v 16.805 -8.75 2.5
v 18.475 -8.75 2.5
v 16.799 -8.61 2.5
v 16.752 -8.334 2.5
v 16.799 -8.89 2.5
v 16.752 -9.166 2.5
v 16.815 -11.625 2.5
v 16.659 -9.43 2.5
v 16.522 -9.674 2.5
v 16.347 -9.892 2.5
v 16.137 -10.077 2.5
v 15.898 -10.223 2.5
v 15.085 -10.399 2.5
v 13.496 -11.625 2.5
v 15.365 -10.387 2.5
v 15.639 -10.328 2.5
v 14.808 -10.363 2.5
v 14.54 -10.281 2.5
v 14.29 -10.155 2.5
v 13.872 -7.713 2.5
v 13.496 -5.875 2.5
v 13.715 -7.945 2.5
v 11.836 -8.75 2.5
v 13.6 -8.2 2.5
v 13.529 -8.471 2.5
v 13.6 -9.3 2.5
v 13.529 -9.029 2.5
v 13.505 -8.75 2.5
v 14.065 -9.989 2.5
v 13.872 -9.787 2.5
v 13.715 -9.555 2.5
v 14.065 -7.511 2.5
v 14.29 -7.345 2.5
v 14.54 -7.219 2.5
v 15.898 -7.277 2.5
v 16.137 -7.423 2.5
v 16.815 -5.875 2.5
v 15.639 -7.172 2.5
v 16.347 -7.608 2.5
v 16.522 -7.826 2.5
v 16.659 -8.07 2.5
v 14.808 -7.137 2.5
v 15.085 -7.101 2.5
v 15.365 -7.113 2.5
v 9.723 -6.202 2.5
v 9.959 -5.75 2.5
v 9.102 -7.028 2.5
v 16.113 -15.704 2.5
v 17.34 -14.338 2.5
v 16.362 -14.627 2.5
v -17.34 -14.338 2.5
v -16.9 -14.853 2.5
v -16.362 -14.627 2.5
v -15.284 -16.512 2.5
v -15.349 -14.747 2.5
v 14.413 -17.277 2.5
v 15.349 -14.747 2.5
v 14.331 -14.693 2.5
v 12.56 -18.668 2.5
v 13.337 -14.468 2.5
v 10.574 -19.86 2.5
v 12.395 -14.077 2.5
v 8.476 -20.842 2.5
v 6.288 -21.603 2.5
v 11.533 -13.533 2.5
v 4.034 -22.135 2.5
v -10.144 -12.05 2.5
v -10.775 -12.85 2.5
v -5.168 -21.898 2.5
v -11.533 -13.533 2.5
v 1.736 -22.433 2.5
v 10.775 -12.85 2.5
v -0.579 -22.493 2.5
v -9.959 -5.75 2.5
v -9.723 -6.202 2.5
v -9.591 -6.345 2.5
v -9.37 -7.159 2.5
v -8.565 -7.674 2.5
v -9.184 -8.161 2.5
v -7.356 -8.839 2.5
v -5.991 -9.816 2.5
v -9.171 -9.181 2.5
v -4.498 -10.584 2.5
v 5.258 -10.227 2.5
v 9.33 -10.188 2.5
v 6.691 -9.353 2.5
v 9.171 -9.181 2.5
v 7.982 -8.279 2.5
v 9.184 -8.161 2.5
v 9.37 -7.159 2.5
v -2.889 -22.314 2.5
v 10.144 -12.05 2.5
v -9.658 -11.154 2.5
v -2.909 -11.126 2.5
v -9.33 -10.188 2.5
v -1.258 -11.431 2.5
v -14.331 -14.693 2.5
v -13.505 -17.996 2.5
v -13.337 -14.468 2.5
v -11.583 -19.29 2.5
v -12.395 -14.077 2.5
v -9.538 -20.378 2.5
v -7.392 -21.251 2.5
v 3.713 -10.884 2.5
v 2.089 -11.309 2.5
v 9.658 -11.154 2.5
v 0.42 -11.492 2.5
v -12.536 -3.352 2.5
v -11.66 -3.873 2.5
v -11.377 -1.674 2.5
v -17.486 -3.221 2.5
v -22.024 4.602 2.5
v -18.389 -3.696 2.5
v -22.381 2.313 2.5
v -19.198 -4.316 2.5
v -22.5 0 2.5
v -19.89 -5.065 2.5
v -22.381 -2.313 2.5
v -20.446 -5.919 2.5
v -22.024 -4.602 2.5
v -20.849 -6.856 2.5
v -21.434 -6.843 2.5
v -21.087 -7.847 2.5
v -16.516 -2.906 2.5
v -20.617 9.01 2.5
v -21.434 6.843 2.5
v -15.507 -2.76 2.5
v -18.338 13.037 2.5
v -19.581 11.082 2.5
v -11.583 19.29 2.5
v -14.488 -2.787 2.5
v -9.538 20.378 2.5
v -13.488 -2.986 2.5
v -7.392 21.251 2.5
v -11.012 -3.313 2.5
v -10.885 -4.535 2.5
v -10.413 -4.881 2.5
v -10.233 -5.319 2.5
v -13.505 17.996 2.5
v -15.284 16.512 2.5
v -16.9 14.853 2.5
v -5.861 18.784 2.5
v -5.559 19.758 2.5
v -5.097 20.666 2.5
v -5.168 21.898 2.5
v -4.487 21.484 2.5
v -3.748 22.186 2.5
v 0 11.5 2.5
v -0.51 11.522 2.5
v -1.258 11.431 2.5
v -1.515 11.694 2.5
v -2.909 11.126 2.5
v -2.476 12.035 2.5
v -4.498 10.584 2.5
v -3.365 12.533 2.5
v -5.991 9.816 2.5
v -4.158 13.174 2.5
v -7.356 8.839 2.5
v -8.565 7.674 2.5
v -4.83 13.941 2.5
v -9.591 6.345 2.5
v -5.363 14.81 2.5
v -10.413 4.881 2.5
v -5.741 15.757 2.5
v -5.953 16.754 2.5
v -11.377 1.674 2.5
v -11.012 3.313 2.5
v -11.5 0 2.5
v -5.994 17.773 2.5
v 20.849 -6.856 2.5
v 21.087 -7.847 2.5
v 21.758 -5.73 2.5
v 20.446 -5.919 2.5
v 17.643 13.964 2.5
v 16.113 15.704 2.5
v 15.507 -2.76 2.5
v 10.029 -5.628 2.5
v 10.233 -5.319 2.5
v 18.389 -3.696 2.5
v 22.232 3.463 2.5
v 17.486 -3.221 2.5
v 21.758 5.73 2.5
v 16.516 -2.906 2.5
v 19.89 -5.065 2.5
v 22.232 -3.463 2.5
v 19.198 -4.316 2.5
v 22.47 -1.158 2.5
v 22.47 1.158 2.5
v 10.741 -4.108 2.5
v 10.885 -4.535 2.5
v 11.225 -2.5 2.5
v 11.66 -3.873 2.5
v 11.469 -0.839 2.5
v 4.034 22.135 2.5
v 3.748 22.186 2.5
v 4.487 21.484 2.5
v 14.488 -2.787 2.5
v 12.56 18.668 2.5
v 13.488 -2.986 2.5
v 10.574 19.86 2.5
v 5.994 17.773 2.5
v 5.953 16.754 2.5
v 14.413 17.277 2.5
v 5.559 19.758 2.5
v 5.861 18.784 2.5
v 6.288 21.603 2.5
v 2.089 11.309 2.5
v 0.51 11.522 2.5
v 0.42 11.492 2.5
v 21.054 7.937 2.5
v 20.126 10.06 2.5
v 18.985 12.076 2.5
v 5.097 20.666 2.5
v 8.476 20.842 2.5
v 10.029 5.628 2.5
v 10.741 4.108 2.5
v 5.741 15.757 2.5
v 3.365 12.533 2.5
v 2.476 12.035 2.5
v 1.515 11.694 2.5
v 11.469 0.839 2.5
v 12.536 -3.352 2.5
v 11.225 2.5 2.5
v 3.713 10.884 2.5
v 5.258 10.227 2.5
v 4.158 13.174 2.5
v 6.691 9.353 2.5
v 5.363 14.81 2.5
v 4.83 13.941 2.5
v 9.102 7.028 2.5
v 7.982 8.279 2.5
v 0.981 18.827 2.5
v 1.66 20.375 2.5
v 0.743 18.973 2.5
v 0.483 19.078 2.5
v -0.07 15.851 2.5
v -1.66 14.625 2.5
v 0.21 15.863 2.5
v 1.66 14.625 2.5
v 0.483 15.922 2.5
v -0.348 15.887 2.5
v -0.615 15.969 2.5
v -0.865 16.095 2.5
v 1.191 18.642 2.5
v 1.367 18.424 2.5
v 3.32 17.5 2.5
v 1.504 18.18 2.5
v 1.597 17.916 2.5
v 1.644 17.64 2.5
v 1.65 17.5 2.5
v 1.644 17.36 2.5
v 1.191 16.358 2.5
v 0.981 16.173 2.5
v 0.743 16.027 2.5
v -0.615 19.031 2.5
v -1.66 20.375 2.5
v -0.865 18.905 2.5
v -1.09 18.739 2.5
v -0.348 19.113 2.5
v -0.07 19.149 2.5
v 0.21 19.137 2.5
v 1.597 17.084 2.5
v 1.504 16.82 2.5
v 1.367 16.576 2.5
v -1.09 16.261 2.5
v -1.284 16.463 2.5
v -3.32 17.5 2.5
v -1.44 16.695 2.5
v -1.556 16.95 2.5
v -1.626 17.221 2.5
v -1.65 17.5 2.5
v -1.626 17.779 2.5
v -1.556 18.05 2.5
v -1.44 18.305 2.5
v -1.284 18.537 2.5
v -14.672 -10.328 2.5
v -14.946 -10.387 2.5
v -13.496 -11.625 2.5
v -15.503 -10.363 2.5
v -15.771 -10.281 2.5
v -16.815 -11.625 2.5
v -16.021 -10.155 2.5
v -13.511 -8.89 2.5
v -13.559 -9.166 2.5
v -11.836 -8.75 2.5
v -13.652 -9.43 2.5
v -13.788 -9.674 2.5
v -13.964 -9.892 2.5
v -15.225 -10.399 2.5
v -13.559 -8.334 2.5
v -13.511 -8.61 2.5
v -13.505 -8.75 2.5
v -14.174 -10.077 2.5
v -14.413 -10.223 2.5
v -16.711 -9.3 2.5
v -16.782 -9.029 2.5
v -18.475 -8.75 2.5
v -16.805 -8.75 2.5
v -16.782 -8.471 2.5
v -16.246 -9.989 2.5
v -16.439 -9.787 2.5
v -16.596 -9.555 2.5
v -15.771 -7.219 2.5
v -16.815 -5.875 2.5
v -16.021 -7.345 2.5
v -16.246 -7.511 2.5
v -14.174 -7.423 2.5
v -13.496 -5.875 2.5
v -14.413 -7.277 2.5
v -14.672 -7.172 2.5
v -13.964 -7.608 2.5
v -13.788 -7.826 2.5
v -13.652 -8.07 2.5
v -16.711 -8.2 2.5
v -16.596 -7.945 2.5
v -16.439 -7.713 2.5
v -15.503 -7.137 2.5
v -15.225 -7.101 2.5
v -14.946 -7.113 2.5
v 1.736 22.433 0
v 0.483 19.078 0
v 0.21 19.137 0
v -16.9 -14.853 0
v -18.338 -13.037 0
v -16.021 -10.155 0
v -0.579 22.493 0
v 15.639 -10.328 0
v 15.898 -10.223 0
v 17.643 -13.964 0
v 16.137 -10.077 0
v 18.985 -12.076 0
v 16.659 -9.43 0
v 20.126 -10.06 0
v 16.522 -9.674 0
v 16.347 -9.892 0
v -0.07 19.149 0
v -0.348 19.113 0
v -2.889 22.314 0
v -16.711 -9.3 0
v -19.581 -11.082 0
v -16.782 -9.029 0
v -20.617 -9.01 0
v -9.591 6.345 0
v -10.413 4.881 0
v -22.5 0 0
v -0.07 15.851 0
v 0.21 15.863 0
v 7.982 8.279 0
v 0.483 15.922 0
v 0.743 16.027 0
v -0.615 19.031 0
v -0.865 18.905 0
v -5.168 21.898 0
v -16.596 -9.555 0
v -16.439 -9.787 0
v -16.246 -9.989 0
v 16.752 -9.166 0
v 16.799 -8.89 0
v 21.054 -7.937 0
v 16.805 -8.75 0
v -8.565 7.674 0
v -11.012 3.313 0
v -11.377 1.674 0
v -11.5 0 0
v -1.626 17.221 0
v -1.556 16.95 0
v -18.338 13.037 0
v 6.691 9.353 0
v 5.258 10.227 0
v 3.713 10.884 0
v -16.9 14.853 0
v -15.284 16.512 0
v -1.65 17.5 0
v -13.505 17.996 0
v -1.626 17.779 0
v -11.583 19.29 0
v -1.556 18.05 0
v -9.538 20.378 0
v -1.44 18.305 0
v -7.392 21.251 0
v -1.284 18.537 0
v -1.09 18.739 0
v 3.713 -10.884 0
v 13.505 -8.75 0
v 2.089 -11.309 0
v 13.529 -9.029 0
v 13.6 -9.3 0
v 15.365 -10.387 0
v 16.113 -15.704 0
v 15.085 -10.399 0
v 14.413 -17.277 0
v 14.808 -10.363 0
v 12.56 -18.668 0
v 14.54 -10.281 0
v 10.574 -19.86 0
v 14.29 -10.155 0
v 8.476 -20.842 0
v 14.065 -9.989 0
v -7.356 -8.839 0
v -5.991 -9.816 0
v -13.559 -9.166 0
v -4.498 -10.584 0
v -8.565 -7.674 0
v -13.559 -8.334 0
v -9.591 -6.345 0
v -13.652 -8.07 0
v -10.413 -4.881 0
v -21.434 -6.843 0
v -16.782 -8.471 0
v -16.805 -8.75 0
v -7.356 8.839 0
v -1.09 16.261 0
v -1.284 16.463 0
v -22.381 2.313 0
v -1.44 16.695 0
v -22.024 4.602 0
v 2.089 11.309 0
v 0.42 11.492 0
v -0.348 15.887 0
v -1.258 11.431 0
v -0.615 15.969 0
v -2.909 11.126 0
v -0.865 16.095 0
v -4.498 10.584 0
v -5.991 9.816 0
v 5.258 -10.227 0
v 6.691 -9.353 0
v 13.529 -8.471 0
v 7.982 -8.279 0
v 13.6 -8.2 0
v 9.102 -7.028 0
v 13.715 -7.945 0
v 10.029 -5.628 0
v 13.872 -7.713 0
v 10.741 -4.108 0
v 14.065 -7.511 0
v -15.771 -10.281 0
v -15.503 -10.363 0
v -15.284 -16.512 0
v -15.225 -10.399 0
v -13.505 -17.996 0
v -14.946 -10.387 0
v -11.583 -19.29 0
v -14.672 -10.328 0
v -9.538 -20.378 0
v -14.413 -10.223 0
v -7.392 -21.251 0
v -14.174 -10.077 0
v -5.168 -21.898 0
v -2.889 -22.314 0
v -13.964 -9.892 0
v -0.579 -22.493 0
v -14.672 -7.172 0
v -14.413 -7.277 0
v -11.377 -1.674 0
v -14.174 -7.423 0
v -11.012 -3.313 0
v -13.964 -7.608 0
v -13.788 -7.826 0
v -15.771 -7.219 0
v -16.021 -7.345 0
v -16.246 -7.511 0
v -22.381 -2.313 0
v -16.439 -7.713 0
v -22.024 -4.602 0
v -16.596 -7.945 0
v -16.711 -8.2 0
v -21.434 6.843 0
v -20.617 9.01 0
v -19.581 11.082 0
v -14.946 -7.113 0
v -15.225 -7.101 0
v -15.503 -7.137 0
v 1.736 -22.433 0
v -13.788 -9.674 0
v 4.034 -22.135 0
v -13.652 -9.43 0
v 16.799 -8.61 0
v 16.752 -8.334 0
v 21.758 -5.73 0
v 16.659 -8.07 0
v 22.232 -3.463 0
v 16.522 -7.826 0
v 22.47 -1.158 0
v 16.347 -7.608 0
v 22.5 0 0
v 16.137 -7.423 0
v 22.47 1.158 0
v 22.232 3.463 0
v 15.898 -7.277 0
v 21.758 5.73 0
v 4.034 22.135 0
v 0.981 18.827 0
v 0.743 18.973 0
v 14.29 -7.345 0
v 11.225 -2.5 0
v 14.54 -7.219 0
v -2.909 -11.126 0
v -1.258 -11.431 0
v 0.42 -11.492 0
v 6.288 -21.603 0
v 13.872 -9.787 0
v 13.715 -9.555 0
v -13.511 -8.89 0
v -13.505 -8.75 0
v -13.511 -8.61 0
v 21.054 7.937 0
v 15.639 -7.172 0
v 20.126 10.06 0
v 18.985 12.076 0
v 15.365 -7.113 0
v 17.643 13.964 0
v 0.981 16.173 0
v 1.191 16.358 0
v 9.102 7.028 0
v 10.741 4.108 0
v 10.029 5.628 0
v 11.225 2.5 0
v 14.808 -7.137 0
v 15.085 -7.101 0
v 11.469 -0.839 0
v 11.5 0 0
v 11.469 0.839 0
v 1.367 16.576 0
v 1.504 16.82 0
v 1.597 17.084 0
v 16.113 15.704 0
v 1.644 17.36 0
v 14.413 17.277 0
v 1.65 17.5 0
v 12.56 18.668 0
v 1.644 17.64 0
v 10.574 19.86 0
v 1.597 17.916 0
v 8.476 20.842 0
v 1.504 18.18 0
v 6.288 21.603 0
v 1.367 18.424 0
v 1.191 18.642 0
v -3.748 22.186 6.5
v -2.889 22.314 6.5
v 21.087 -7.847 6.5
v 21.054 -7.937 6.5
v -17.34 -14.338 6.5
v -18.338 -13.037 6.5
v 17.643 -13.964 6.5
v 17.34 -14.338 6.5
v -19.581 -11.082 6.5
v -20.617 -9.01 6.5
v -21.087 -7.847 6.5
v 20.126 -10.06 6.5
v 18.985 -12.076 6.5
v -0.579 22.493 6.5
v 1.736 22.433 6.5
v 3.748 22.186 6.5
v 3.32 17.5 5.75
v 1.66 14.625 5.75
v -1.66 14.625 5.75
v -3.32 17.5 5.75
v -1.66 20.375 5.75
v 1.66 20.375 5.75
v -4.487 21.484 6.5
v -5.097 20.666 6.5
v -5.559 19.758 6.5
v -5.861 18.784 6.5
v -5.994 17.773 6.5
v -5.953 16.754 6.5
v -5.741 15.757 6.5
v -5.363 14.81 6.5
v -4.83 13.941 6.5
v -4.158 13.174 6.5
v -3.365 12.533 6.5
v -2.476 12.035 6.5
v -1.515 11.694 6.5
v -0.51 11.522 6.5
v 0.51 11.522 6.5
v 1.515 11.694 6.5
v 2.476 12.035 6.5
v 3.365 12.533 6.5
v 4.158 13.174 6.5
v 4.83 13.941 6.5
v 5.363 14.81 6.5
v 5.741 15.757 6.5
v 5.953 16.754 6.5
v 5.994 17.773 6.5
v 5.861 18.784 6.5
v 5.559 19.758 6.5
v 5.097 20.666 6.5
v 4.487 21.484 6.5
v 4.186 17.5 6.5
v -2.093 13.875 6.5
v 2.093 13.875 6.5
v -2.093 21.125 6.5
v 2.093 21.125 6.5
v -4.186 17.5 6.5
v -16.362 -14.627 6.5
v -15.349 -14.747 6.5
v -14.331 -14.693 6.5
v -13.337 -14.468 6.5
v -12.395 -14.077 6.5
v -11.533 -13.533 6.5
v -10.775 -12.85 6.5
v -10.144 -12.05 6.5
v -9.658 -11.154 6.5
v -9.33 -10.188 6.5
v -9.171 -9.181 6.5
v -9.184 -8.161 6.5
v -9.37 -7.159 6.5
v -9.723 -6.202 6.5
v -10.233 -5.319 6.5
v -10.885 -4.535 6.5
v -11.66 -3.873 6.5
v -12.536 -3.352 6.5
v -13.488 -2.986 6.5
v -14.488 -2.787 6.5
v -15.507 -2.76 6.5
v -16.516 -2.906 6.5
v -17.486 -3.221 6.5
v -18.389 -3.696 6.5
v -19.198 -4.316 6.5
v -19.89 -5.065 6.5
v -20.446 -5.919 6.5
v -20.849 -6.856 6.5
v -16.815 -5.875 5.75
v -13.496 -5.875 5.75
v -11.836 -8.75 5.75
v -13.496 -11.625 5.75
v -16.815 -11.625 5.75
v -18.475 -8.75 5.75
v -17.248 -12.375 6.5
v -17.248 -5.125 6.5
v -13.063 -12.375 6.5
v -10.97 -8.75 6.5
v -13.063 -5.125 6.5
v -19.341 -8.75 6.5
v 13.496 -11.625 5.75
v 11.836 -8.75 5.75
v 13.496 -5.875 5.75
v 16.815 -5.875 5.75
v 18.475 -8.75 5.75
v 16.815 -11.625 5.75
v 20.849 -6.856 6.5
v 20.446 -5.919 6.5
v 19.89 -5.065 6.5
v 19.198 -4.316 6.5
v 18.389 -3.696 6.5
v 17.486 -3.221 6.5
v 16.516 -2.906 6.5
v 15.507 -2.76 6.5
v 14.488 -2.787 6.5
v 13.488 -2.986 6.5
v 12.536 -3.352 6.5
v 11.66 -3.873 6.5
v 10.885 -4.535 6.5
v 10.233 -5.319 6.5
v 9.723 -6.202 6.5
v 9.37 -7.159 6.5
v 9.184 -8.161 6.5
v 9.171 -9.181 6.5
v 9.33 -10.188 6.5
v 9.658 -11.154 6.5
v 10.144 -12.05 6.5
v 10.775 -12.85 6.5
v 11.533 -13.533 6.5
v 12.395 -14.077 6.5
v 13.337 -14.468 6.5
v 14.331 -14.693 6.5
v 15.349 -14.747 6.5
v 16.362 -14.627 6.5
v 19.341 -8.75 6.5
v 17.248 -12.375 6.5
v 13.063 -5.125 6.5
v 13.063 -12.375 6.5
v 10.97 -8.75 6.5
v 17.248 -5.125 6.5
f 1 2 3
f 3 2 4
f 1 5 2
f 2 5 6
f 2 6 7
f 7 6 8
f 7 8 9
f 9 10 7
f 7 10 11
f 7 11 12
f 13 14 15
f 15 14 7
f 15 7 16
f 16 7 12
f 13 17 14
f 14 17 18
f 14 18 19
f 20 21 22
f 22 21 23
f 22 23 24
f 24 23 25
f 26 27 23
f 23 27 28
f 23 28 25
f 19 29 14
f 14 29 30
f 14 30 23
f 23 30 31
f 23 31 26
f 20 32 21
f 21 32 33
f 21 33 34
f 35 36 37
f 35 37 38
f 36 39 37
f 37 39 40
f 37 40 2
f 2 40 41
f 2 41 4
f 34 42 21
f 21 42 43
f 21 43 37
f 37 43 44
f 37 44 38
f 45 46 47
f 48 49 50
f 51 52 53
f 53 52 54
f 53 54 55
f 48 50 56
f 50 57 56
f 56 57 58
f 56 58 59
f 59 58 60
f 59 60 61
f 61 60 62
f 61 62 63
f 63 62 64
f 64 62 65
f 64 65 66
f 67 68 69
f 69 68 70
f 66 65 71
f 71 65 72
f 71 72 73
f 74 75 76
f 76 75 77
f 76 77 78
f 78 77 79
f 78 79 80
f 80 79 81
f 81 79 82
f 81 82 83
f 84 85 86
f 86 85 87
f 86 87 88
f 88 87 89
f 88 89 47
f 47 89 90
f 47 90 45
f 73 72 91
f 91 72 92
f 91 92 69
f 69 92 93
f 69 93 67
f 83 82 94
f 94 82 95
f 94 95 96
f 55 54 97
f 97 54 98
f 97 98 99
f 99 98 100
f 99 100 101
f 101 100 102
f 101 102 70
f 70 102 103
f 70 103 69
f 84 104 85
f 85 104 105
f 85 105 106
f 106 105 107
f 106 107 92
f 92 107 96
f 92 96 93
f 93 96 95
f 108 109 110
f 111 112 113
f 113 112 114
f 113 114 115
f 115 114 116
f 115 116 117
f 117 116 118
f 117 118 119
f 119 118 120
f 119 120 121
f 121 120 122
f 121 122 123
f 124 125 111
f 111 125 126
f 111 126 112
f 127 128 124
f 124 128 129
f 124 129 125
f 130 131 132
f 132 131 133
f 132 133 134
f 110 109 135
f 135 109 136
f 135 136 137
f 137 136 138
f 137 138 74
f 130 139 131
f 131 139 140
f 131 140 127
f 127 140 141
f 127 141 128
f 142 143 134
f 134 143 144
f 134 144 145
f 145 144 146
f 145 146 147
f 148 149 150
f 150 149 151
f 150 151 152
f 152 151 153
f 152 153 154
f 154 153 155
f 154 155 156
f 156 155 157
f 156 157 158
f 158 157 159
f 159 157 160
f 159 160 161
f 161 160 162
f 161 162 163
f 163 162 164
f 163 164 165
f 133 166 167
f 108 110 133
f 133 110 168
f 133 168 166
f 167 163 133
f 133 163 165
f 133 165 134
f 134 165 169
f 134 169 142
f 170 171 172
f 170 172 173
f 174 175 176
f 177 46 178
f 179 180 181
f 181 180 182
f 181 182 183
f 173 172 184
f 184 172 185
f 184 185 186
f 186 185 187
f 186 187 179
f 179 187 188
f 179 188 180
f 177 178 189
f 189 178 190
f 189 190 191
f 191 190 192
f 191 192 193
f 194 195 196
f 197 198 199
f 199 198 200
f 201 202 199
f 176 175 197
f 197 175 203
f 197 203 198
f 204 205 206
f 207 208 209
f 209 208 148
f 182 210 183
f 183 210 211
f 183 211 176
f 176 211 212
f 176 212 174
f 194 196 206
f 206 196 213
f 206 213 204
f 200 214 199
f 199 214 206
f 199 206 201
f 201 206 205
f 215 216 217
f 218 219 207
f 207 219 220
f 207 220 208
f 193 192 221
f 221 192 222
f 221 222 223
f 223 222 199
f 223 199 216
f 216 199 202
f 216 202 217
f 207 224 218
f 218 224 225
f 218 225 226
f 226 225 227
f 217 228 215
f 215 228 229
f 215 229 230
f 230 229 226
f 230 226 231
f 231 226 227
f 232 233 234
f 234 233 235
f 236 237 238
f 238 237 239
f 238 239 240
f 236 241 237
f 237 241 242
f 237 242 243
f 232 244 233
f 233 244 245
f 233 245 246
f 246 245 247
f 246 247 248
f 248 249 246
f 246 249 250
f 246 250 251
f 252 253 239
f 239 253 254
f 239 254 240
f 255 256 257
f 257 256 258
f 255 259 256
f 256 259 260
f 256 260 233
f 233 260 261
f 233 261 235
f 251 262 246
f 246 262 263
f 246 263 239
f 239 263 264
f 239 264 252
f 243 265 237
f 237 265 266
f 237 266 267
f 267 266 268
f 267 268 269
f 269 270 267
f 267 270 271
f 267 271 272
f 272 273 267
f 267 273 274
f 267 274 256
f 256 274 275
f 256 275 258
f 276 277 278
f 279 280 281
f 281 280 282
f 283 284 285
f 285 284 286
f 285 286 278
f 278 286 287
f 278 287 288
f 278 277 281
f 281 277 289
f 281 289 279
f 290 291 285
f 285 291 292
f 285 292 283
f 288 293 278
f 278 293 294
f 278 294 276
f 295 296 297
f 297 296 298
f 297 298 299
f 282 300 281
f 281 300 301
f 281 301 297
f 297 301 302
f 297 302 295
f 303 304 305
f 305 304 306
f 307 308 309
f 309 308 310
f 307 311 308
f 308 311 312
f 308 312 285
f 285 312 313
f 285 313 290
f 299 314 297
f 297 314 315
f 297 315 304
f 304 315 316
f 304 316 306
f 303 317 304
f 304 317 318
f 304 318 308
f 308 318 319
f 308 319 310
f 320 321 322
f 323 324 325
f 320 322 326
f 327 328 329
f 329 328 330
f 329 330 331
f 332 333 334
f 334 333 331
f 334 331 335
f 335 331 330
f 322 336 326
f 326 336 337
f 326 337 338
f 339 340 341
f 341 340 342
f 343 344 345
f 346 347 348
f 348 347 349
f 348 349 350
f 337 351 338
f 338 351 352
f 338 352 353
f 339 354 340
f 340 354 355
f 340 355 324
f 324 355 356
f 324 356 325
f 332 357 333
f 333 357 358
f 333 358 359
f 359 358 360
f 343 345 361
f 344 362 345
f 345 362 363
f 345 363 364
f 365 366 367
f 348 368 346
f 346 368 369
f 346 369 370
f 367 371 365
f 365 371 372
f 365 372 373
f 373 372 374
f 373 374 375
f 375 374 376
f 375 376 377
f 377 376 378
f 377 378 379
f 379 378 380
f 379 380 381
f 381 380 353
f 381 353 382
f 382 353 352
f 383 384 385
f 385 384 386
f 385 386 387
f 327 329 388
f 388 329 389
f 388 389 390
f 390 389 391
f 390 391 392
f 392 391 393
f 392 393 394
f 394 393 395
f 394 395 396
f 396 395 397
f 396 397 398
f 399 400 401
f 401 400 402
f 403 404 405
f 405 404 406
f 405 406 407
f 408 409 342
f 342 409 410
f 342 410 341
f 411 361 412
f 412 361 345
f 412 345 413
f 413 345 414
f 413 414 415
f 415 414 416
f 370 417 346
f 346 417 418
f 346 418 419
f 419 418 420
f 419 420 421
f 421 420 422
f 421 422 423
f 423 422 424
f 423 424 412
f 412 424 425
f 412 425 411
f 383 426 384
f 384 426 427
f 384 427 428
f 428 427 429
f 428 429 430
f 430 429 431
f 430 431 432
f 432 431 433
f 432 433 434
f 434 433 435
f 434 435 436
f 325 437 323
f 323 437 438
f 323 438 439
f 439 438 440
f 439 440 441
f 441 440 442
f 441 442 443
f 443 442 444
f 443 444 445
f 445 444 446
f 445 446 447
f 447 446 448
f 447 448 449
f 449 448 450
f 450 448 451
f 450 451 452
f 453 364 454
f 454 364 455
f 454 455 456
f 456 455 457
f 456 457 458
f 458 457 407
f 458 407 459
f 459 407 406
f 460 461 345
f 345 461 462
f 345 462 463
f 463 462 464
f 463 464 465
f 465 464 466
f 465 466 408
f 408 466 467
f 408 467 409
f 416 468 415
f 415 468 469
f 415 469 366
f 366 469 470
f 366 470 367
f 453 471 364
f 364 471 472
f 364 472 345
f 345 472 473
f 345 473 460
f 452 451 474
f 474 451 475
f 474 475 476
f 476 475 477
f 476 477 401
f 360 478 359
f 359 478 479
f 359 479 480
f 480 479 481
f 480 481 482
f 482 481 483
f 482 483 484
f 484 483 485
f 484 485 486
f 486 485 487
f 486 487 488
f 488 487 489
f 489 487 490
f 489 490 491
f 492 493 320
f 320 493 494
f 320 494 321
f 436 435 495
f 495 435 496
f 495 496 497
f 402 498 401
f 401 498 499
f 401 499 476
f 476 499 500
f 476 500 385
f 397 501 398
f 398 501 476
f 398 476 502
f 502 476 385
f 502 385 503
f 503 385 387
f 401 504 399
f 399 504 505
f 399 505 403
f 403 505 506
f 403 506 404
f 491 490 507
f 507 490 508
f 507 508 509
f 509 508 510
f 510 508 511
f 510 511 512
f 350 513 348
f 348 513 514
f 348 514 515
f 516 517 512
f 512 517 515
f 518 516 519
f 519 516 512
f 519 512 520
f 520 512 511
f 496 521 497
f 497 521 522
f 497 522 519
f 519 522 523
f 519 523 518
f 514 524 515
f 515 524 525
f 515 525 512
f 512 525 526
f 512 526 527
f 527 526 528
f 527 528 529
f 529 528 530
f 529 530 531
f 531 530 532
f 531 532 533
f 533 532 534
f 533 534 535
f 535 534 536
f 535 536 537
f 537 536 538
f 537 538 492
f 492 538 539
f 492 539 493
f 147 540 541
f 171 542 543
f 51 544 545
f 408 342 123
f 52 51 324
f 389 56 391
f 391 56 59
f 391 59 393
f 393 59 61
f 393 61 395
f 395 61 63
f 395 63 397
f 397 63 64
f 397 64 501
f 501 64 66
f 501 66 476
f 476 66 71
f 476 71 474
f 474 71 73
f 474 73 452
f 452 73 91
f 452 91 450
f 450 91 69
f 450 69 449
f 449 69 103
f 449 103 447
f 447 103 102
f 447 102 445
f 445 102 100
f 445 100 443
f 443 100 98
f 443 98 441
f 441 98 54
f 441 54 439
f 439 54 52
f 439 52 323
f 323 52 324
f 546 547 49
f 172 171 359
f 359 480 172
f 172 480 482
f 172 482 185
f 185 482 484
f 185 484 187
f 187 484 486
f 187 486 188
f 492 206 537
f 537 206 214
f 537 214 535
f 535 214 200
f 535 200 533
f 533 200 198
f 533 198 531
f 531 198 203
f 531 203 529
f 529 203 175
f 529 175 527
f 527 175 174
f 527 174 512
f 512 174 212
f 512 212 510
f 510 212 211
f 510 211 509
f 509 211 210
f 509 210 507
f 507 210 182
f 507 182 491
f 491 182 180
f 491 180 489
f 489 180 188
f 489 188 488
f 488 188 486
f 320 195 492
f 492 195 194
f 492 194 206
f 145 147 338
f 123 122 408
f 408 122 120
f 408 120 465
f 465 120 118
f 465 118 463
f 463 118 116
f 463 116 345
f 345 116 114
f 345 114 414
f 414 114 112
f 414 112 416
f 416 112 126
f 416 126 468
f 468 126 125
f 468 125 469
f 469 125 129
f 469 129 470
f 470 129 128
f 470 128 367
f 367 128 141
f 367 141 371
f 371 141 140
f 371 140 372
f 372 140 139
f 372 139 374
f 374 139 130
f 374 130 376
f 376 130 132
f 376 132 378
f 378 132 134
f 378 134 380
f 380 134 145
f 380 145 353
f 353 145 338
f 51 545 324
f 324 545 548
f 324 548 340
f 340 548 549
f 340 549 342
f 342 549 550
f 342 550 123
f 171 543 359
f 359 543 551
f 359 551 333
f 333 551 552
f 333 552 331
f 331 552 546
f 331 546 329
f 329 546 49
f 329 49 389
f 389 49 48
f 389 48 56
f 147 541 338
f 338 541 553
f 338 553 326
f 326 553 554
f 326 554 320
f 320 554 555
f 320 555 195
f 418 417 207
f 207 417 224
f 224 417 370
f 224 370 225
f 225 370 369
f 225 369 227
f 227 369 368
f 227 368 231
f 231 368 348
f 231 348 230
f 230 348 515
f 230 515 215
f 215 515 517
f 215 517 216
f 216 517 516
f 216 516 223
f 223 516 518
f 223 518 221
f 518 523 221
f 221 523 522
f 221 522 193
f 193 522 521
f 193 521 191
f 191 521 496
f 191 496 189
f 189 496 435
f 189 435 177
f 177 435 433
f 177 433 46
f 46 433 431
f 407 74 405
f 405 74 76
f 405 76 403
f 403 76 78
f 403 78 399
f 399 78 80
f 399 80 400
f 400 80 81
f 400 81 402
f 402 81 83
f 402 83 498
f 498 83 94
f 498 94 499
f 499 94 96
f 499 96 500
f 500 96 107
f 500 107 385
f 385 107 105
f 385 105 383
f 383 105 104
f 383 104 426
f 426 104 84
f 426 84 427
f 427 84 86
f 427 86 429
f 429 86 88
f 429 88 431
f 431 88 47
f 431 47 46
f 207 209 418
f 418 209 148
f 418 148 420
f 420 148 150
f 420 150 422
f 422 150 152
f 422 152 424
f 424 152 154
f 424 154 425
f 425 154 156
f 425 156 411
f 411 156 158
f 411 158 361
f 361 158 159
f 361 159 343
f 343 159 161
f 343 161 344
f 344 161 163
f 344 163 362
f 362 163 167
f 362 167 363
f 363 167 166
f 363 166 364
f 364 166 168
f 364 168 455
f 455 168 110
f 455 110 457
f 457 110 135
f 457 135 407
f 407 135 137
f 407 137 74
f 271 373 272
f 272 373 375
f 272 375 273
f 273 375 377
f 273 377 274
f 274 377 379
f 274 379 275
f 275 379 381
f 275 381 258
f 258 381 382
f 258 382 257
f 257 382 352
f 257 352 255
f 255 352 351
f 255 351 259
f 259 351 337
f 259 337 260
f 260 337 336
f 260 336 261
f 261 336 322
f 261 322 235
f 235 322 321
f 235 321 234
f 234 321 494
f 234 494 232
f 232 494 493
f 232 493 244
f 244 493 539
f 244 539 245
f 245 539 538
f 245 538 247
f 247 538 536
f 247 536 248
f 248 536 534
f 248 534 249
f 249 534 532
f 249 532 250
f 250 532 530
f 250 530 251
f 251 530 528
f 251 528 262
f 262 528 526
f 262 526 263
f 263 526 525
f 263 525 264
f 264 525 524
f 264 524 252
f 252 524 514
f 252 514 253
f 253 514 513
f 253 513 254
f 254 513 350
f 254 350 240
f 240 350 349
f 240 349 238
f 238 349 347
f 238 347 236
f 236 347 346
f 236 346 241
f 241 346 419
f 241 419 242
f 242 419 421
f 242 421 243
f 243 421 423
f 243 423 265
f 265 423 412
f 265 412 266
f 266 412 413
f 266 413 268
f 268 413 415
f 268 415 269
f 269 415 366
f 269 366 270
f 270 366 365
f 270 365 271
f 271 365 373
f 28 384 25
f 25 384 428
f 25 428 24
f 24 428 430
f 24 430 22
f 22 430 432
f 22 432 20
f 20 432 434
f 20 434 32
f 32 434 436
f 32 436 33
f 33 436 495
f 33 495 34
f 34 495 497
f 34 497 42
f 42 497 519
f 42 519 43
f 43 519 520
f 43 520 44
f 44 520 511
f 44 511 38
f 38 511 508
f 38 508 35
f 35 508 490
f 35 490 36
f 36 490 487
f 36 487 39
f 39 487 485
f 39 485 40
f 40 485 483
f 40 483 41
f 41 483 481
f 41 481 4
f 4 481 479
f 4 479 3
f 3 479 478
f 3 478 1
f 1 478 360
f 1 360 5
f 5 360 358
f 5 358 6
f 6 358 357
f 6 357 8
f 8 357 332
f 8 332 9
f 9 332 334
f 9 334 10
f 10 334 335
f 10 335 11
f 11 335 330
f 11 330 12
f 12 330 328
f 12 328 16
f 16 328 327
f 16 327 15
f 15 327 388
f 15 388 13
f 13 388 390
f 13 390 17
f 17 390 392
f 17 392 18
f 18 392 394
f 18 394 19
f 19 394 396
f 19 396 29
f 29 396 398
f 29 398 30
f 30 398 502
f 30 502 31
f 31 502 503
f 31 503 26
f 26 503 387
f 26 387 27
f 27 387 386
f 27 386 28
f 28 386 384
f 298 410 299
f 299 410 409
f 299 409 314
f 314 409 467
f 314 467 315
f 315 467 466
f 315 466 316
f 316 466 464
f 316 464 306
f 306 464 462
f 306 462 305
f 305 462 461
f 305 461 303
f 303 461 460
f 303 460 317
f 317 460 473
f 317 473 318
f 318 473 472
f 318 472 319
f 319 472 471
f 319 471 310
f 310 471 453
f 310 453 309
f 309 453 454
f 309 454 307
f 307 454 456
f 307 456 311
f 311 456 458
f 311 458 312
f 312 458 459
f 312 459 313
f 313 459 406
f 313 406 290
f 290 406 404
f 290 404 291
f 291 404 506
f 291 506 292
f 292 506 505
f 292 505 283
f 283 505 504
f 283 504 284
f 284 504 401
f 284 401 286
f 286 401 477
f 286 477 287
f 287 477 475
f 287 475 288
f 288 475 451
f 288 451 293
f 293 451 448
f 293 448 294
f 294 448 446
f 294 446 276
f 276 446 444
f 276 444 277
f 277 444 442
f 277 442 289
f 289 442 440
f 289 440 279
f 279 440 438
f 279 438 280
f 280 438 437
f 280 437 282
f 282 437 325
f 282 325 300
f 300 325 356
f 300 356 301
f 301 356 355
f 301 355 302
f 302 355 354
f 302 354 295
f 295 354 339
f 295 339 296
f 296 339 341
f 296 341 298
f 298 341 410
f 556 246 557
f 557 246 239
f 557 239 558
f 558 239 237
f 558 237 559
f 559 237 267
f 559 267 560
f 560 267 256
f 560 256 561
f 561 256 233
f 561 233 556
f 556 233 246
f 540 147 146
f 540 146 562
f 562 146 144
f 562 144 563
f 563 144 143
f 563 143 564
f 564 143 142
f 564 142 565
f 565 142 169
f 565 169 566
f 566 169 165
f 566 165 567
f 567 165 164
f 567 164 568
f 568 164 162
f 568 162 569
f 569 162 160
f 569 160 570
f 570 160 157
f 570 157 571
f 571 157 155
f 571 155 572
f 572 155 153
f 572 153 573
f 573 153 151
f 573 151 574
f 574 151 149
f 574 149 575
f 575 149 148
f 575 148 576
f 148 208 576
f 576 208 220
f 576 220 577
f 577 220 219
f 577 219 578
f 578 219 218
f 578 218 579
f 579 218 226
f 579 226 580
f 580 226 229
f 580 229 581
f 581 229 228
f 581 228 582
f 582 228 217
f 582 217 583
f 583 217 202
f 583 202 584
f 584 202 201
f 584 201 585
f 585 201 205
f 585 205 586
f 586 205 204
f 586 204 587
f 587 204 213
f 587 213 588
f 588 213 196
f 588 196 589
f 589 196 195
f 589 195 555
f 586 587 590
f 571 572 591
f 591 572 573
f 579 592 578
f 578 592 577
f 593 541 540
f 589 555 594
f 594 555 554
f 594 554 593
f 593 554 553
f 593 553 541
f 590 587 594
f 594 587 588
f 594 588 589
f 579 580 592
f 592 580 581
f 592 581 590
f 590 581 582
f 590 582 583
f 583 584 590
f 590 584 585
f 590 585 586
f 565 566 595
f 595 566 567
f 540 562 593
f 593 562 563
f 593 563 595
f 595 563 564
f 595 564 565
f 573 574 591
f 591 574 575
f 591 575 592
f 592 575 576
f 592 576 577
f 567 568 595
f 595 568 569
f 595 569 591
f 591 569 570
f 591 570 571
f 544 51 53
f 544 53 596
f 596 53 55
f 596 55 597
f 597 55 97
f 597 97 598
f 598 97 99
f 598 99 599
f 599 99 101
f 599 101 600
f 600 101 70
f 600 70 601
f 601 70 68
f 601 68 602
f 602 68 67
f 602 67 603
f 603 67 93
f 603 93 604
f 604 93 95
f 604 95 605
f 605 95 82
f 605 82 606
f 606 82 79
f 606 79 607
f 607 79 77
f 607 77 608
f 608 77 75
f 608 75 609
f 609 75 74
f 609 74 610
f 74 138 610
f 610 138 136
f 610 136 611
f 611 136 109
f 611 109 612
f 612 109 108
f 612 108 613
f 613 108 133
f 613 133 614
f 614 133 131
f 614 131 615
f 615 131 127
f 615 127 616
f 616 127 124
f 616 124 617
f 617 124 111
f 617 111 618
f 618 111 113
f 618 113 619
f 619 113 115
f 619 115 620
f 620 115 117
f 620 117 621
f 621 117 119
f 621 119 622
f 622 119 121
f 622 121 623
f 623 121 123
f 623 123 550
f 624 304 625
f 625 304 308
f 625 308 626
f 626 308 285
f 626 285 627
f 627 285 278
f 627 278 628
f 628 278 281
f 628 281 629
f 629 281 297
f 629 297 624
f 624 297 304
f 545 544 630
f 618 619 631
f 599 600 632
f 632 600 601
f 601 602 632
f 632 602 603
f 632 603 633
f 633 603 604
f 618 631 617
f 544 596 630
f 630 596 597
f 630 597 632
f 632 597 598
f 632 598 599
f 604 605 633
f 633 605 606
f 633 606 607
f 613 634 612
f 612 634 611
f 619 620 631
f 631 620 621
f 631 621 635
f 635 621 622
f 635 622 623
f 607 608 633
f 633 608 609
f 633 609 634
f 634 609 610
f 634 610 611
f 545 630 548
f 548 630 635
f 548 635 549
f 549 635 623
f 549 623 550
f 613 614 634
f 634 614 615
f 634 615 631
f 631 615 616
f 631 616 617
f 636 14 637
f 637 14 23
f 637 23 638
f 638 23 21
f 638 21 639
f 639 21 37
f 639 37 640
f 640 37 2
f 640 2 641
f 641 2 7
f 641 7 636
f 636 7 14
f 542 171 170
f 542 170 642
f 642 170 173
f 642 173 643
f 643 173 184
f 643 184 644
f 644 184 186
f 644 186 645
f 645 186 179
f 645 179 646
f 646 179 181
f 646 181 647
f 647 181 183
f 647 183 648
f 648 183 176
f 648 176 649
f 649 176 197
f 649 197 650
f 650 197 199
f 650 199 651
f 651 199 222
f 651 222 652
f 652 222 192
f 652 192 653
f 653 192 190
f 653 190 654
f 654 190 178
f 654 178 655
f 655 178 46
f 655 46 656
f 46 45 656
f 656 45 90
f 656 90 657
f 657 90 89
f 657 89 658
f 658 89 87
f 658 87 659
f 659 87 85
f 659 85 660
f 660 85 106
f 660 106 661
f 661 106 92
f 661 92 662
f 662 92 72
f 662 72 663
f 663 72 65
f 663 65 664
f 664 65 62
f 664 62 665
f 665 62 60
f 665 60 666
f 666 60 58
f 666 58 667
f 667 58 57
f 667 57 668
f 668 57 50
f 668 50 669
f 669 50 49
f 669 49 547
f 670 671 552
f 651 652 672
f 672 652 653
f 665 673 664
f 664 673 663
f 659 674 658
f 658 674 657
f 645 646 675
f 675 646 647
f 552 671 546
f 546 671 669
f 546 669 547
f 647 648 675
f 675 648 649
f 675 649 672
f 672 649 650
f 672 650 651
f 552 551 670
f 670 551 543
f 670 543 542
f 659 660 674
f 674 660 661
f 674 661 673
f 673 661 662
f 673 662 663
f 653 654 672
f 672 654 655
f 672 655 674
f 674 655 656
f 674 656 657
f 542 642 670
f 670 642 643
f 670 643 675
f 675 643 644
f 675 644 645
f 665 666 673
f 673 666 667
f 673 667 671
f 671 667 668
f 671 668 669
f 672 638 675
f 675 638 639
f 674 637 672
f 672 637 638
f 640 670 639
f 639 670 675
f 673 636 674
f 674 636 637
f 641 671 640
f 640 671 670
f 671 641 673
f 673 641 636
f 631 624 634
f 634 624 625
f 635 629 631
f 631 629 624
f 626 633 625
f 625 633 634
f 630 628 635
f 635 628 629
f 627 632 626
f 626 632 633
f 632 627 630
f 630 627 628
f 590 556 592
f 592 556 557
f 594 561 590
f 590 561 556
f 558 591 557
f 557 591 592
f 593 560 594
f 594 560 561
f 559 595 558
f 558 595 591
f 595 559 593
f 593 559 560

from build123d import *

# Parameters (mm, degrees)
SKETCH1_R           = 22.5
SKETCH1_R_2         = 11.5
SKETCH1_R_3         = 1.65
BOSS_EXTRUDE1_DEPTH = 2.5
BOSS_EXTRUDE2_DEPTH = 4
CHAMFER1_SIZE       = 0.75


with BuildPart() as part:
    # Sketch1 → Boss-Extrude1 (new body)
    with BuildSketch(Plane.XY):
        Circle(SKETCH1_R)
        Circle(SKETCH1_R_2, mode=Mode.SUBTRACT)
        with Locations((0, 17.5)):
            Circle(SKETCH1_R_3, mode=Mode.SUBTRACT)
        with Locations((15.155444566, -8.75)):
            Circle(SKETCH1_R_3, mode=Mode.SUBTRACT)
        with Locations((-15.155444566, -8.75)):
            Circle(SKETCH1_R_3, mode=Mode.SUBTRACT)
    extrude(amount=BOSS_EXTRUDE1_DEPTH)

    # Sketch2 → Boss-Extrude2 (add)
    # profile 1 of 3: a face of its own
    with BuildSketch(Plane.XY.offset(2.5)):
        with BuildLine():
            ThreePointArc((3.747543413, 22.185714286), (0, 22.5), (-3.747543413, 22.185714286))
            ThreePointArc((-3.747543413, 22.185714286), (0, 11.5), (3.747543413, 22.185714286))
        make_face()
        Polygon((1.659882024, 20.375), (3.319764048, 17.5), (1.659882024, 14.625), (-1.659882024, 14.625), (-3.319764048, 17.5), (-1.659882024, 20.375), align=None, mode=Mode.SUBTRACT)
    # profile 2 of 3: a face of its own
    with BuildSketch(Plane.XY.offset(2.5)):
        with BuildLine():
            ThreePointArc((-17.339620466, -14.33832494), (-9.959292144, -5.75), (-21.087163879, -7.847389345))
            ThreePointArc((-21.087163879, -7.847389345), (-19.485571585, -11.25), (-17.339620466, -14.33832494))
        make_face()
        Polygon((-18.475208614, -8.75), (-16.81532659, -5.875), (-13.495562542, -5.875), (-11.835680518, -8.75), (-13.495562542, -11.625), (-16.81532659, -11.625), align=None, mode=Mode.SUBTRACT)
    # profile 3 of 3: a face of its own
    with BuildSketch(Plane.XY.offset(2.5)):
        with BuildLine():
            ThreePointArc((17.339620466, -14.33832494), (19.485571585, -11.25), (21.087163879, -7.847389345))
            ThreePointArc((21.087163879, -7.847389345), (9.959292144, -5.75), (17.339620466, -14.33832494))
        make_face()
        Polygon((16.81532659, -11.625), (13.495562542, -11.625), (11.835680518, -8.75), (13.495562542, -5.875), (16.81532659, -5.875), (18.475208614, -8.75), align=None, mode=Mode.SUBTRACT)
    extrude(amount=BOSS_EXTRUDE2_DEPTH)

    # Chamfer1
    chamfer1_edges = [part.edges().sort_by_distance(p)[0] for p in [
        (2.489823036, 16.0625, 6.5),
        (0, 14.625, 6.5),
        (-2.489823036, 16.0625, 6.5),
        (-2.489823036, 18.9375, 6.5),
        (0, 20.375, 6.5),
        (2.489823036, 18.9375, 6.5),
        (-15.155444566, -5.875, 6.5),
        (-12.66562153, -7.3125, 6.5),
        (-12.66562153, -10.1875, 6.5),
        (-15.155444566, -11.625, 6.5),
        (-17.645267602, -10.1875, 6.5),
        (-17.645267602, -7.3125, 6.5),
        (12.66562153, -10.1875, 6.5),
        (12.66562153, -7.3125, 6.5),
        (15.155444566, -5.875, 6.5),
        (17.645267602, -7.3125, 6.5),
        (17.645267602, -10.1875, 6.5),
        (15.155444566, -11.625, 6.5),
    ]]
    chamfer(chamfer1_edges, length=CHAMFER1_SIZE)


solid = part.part
